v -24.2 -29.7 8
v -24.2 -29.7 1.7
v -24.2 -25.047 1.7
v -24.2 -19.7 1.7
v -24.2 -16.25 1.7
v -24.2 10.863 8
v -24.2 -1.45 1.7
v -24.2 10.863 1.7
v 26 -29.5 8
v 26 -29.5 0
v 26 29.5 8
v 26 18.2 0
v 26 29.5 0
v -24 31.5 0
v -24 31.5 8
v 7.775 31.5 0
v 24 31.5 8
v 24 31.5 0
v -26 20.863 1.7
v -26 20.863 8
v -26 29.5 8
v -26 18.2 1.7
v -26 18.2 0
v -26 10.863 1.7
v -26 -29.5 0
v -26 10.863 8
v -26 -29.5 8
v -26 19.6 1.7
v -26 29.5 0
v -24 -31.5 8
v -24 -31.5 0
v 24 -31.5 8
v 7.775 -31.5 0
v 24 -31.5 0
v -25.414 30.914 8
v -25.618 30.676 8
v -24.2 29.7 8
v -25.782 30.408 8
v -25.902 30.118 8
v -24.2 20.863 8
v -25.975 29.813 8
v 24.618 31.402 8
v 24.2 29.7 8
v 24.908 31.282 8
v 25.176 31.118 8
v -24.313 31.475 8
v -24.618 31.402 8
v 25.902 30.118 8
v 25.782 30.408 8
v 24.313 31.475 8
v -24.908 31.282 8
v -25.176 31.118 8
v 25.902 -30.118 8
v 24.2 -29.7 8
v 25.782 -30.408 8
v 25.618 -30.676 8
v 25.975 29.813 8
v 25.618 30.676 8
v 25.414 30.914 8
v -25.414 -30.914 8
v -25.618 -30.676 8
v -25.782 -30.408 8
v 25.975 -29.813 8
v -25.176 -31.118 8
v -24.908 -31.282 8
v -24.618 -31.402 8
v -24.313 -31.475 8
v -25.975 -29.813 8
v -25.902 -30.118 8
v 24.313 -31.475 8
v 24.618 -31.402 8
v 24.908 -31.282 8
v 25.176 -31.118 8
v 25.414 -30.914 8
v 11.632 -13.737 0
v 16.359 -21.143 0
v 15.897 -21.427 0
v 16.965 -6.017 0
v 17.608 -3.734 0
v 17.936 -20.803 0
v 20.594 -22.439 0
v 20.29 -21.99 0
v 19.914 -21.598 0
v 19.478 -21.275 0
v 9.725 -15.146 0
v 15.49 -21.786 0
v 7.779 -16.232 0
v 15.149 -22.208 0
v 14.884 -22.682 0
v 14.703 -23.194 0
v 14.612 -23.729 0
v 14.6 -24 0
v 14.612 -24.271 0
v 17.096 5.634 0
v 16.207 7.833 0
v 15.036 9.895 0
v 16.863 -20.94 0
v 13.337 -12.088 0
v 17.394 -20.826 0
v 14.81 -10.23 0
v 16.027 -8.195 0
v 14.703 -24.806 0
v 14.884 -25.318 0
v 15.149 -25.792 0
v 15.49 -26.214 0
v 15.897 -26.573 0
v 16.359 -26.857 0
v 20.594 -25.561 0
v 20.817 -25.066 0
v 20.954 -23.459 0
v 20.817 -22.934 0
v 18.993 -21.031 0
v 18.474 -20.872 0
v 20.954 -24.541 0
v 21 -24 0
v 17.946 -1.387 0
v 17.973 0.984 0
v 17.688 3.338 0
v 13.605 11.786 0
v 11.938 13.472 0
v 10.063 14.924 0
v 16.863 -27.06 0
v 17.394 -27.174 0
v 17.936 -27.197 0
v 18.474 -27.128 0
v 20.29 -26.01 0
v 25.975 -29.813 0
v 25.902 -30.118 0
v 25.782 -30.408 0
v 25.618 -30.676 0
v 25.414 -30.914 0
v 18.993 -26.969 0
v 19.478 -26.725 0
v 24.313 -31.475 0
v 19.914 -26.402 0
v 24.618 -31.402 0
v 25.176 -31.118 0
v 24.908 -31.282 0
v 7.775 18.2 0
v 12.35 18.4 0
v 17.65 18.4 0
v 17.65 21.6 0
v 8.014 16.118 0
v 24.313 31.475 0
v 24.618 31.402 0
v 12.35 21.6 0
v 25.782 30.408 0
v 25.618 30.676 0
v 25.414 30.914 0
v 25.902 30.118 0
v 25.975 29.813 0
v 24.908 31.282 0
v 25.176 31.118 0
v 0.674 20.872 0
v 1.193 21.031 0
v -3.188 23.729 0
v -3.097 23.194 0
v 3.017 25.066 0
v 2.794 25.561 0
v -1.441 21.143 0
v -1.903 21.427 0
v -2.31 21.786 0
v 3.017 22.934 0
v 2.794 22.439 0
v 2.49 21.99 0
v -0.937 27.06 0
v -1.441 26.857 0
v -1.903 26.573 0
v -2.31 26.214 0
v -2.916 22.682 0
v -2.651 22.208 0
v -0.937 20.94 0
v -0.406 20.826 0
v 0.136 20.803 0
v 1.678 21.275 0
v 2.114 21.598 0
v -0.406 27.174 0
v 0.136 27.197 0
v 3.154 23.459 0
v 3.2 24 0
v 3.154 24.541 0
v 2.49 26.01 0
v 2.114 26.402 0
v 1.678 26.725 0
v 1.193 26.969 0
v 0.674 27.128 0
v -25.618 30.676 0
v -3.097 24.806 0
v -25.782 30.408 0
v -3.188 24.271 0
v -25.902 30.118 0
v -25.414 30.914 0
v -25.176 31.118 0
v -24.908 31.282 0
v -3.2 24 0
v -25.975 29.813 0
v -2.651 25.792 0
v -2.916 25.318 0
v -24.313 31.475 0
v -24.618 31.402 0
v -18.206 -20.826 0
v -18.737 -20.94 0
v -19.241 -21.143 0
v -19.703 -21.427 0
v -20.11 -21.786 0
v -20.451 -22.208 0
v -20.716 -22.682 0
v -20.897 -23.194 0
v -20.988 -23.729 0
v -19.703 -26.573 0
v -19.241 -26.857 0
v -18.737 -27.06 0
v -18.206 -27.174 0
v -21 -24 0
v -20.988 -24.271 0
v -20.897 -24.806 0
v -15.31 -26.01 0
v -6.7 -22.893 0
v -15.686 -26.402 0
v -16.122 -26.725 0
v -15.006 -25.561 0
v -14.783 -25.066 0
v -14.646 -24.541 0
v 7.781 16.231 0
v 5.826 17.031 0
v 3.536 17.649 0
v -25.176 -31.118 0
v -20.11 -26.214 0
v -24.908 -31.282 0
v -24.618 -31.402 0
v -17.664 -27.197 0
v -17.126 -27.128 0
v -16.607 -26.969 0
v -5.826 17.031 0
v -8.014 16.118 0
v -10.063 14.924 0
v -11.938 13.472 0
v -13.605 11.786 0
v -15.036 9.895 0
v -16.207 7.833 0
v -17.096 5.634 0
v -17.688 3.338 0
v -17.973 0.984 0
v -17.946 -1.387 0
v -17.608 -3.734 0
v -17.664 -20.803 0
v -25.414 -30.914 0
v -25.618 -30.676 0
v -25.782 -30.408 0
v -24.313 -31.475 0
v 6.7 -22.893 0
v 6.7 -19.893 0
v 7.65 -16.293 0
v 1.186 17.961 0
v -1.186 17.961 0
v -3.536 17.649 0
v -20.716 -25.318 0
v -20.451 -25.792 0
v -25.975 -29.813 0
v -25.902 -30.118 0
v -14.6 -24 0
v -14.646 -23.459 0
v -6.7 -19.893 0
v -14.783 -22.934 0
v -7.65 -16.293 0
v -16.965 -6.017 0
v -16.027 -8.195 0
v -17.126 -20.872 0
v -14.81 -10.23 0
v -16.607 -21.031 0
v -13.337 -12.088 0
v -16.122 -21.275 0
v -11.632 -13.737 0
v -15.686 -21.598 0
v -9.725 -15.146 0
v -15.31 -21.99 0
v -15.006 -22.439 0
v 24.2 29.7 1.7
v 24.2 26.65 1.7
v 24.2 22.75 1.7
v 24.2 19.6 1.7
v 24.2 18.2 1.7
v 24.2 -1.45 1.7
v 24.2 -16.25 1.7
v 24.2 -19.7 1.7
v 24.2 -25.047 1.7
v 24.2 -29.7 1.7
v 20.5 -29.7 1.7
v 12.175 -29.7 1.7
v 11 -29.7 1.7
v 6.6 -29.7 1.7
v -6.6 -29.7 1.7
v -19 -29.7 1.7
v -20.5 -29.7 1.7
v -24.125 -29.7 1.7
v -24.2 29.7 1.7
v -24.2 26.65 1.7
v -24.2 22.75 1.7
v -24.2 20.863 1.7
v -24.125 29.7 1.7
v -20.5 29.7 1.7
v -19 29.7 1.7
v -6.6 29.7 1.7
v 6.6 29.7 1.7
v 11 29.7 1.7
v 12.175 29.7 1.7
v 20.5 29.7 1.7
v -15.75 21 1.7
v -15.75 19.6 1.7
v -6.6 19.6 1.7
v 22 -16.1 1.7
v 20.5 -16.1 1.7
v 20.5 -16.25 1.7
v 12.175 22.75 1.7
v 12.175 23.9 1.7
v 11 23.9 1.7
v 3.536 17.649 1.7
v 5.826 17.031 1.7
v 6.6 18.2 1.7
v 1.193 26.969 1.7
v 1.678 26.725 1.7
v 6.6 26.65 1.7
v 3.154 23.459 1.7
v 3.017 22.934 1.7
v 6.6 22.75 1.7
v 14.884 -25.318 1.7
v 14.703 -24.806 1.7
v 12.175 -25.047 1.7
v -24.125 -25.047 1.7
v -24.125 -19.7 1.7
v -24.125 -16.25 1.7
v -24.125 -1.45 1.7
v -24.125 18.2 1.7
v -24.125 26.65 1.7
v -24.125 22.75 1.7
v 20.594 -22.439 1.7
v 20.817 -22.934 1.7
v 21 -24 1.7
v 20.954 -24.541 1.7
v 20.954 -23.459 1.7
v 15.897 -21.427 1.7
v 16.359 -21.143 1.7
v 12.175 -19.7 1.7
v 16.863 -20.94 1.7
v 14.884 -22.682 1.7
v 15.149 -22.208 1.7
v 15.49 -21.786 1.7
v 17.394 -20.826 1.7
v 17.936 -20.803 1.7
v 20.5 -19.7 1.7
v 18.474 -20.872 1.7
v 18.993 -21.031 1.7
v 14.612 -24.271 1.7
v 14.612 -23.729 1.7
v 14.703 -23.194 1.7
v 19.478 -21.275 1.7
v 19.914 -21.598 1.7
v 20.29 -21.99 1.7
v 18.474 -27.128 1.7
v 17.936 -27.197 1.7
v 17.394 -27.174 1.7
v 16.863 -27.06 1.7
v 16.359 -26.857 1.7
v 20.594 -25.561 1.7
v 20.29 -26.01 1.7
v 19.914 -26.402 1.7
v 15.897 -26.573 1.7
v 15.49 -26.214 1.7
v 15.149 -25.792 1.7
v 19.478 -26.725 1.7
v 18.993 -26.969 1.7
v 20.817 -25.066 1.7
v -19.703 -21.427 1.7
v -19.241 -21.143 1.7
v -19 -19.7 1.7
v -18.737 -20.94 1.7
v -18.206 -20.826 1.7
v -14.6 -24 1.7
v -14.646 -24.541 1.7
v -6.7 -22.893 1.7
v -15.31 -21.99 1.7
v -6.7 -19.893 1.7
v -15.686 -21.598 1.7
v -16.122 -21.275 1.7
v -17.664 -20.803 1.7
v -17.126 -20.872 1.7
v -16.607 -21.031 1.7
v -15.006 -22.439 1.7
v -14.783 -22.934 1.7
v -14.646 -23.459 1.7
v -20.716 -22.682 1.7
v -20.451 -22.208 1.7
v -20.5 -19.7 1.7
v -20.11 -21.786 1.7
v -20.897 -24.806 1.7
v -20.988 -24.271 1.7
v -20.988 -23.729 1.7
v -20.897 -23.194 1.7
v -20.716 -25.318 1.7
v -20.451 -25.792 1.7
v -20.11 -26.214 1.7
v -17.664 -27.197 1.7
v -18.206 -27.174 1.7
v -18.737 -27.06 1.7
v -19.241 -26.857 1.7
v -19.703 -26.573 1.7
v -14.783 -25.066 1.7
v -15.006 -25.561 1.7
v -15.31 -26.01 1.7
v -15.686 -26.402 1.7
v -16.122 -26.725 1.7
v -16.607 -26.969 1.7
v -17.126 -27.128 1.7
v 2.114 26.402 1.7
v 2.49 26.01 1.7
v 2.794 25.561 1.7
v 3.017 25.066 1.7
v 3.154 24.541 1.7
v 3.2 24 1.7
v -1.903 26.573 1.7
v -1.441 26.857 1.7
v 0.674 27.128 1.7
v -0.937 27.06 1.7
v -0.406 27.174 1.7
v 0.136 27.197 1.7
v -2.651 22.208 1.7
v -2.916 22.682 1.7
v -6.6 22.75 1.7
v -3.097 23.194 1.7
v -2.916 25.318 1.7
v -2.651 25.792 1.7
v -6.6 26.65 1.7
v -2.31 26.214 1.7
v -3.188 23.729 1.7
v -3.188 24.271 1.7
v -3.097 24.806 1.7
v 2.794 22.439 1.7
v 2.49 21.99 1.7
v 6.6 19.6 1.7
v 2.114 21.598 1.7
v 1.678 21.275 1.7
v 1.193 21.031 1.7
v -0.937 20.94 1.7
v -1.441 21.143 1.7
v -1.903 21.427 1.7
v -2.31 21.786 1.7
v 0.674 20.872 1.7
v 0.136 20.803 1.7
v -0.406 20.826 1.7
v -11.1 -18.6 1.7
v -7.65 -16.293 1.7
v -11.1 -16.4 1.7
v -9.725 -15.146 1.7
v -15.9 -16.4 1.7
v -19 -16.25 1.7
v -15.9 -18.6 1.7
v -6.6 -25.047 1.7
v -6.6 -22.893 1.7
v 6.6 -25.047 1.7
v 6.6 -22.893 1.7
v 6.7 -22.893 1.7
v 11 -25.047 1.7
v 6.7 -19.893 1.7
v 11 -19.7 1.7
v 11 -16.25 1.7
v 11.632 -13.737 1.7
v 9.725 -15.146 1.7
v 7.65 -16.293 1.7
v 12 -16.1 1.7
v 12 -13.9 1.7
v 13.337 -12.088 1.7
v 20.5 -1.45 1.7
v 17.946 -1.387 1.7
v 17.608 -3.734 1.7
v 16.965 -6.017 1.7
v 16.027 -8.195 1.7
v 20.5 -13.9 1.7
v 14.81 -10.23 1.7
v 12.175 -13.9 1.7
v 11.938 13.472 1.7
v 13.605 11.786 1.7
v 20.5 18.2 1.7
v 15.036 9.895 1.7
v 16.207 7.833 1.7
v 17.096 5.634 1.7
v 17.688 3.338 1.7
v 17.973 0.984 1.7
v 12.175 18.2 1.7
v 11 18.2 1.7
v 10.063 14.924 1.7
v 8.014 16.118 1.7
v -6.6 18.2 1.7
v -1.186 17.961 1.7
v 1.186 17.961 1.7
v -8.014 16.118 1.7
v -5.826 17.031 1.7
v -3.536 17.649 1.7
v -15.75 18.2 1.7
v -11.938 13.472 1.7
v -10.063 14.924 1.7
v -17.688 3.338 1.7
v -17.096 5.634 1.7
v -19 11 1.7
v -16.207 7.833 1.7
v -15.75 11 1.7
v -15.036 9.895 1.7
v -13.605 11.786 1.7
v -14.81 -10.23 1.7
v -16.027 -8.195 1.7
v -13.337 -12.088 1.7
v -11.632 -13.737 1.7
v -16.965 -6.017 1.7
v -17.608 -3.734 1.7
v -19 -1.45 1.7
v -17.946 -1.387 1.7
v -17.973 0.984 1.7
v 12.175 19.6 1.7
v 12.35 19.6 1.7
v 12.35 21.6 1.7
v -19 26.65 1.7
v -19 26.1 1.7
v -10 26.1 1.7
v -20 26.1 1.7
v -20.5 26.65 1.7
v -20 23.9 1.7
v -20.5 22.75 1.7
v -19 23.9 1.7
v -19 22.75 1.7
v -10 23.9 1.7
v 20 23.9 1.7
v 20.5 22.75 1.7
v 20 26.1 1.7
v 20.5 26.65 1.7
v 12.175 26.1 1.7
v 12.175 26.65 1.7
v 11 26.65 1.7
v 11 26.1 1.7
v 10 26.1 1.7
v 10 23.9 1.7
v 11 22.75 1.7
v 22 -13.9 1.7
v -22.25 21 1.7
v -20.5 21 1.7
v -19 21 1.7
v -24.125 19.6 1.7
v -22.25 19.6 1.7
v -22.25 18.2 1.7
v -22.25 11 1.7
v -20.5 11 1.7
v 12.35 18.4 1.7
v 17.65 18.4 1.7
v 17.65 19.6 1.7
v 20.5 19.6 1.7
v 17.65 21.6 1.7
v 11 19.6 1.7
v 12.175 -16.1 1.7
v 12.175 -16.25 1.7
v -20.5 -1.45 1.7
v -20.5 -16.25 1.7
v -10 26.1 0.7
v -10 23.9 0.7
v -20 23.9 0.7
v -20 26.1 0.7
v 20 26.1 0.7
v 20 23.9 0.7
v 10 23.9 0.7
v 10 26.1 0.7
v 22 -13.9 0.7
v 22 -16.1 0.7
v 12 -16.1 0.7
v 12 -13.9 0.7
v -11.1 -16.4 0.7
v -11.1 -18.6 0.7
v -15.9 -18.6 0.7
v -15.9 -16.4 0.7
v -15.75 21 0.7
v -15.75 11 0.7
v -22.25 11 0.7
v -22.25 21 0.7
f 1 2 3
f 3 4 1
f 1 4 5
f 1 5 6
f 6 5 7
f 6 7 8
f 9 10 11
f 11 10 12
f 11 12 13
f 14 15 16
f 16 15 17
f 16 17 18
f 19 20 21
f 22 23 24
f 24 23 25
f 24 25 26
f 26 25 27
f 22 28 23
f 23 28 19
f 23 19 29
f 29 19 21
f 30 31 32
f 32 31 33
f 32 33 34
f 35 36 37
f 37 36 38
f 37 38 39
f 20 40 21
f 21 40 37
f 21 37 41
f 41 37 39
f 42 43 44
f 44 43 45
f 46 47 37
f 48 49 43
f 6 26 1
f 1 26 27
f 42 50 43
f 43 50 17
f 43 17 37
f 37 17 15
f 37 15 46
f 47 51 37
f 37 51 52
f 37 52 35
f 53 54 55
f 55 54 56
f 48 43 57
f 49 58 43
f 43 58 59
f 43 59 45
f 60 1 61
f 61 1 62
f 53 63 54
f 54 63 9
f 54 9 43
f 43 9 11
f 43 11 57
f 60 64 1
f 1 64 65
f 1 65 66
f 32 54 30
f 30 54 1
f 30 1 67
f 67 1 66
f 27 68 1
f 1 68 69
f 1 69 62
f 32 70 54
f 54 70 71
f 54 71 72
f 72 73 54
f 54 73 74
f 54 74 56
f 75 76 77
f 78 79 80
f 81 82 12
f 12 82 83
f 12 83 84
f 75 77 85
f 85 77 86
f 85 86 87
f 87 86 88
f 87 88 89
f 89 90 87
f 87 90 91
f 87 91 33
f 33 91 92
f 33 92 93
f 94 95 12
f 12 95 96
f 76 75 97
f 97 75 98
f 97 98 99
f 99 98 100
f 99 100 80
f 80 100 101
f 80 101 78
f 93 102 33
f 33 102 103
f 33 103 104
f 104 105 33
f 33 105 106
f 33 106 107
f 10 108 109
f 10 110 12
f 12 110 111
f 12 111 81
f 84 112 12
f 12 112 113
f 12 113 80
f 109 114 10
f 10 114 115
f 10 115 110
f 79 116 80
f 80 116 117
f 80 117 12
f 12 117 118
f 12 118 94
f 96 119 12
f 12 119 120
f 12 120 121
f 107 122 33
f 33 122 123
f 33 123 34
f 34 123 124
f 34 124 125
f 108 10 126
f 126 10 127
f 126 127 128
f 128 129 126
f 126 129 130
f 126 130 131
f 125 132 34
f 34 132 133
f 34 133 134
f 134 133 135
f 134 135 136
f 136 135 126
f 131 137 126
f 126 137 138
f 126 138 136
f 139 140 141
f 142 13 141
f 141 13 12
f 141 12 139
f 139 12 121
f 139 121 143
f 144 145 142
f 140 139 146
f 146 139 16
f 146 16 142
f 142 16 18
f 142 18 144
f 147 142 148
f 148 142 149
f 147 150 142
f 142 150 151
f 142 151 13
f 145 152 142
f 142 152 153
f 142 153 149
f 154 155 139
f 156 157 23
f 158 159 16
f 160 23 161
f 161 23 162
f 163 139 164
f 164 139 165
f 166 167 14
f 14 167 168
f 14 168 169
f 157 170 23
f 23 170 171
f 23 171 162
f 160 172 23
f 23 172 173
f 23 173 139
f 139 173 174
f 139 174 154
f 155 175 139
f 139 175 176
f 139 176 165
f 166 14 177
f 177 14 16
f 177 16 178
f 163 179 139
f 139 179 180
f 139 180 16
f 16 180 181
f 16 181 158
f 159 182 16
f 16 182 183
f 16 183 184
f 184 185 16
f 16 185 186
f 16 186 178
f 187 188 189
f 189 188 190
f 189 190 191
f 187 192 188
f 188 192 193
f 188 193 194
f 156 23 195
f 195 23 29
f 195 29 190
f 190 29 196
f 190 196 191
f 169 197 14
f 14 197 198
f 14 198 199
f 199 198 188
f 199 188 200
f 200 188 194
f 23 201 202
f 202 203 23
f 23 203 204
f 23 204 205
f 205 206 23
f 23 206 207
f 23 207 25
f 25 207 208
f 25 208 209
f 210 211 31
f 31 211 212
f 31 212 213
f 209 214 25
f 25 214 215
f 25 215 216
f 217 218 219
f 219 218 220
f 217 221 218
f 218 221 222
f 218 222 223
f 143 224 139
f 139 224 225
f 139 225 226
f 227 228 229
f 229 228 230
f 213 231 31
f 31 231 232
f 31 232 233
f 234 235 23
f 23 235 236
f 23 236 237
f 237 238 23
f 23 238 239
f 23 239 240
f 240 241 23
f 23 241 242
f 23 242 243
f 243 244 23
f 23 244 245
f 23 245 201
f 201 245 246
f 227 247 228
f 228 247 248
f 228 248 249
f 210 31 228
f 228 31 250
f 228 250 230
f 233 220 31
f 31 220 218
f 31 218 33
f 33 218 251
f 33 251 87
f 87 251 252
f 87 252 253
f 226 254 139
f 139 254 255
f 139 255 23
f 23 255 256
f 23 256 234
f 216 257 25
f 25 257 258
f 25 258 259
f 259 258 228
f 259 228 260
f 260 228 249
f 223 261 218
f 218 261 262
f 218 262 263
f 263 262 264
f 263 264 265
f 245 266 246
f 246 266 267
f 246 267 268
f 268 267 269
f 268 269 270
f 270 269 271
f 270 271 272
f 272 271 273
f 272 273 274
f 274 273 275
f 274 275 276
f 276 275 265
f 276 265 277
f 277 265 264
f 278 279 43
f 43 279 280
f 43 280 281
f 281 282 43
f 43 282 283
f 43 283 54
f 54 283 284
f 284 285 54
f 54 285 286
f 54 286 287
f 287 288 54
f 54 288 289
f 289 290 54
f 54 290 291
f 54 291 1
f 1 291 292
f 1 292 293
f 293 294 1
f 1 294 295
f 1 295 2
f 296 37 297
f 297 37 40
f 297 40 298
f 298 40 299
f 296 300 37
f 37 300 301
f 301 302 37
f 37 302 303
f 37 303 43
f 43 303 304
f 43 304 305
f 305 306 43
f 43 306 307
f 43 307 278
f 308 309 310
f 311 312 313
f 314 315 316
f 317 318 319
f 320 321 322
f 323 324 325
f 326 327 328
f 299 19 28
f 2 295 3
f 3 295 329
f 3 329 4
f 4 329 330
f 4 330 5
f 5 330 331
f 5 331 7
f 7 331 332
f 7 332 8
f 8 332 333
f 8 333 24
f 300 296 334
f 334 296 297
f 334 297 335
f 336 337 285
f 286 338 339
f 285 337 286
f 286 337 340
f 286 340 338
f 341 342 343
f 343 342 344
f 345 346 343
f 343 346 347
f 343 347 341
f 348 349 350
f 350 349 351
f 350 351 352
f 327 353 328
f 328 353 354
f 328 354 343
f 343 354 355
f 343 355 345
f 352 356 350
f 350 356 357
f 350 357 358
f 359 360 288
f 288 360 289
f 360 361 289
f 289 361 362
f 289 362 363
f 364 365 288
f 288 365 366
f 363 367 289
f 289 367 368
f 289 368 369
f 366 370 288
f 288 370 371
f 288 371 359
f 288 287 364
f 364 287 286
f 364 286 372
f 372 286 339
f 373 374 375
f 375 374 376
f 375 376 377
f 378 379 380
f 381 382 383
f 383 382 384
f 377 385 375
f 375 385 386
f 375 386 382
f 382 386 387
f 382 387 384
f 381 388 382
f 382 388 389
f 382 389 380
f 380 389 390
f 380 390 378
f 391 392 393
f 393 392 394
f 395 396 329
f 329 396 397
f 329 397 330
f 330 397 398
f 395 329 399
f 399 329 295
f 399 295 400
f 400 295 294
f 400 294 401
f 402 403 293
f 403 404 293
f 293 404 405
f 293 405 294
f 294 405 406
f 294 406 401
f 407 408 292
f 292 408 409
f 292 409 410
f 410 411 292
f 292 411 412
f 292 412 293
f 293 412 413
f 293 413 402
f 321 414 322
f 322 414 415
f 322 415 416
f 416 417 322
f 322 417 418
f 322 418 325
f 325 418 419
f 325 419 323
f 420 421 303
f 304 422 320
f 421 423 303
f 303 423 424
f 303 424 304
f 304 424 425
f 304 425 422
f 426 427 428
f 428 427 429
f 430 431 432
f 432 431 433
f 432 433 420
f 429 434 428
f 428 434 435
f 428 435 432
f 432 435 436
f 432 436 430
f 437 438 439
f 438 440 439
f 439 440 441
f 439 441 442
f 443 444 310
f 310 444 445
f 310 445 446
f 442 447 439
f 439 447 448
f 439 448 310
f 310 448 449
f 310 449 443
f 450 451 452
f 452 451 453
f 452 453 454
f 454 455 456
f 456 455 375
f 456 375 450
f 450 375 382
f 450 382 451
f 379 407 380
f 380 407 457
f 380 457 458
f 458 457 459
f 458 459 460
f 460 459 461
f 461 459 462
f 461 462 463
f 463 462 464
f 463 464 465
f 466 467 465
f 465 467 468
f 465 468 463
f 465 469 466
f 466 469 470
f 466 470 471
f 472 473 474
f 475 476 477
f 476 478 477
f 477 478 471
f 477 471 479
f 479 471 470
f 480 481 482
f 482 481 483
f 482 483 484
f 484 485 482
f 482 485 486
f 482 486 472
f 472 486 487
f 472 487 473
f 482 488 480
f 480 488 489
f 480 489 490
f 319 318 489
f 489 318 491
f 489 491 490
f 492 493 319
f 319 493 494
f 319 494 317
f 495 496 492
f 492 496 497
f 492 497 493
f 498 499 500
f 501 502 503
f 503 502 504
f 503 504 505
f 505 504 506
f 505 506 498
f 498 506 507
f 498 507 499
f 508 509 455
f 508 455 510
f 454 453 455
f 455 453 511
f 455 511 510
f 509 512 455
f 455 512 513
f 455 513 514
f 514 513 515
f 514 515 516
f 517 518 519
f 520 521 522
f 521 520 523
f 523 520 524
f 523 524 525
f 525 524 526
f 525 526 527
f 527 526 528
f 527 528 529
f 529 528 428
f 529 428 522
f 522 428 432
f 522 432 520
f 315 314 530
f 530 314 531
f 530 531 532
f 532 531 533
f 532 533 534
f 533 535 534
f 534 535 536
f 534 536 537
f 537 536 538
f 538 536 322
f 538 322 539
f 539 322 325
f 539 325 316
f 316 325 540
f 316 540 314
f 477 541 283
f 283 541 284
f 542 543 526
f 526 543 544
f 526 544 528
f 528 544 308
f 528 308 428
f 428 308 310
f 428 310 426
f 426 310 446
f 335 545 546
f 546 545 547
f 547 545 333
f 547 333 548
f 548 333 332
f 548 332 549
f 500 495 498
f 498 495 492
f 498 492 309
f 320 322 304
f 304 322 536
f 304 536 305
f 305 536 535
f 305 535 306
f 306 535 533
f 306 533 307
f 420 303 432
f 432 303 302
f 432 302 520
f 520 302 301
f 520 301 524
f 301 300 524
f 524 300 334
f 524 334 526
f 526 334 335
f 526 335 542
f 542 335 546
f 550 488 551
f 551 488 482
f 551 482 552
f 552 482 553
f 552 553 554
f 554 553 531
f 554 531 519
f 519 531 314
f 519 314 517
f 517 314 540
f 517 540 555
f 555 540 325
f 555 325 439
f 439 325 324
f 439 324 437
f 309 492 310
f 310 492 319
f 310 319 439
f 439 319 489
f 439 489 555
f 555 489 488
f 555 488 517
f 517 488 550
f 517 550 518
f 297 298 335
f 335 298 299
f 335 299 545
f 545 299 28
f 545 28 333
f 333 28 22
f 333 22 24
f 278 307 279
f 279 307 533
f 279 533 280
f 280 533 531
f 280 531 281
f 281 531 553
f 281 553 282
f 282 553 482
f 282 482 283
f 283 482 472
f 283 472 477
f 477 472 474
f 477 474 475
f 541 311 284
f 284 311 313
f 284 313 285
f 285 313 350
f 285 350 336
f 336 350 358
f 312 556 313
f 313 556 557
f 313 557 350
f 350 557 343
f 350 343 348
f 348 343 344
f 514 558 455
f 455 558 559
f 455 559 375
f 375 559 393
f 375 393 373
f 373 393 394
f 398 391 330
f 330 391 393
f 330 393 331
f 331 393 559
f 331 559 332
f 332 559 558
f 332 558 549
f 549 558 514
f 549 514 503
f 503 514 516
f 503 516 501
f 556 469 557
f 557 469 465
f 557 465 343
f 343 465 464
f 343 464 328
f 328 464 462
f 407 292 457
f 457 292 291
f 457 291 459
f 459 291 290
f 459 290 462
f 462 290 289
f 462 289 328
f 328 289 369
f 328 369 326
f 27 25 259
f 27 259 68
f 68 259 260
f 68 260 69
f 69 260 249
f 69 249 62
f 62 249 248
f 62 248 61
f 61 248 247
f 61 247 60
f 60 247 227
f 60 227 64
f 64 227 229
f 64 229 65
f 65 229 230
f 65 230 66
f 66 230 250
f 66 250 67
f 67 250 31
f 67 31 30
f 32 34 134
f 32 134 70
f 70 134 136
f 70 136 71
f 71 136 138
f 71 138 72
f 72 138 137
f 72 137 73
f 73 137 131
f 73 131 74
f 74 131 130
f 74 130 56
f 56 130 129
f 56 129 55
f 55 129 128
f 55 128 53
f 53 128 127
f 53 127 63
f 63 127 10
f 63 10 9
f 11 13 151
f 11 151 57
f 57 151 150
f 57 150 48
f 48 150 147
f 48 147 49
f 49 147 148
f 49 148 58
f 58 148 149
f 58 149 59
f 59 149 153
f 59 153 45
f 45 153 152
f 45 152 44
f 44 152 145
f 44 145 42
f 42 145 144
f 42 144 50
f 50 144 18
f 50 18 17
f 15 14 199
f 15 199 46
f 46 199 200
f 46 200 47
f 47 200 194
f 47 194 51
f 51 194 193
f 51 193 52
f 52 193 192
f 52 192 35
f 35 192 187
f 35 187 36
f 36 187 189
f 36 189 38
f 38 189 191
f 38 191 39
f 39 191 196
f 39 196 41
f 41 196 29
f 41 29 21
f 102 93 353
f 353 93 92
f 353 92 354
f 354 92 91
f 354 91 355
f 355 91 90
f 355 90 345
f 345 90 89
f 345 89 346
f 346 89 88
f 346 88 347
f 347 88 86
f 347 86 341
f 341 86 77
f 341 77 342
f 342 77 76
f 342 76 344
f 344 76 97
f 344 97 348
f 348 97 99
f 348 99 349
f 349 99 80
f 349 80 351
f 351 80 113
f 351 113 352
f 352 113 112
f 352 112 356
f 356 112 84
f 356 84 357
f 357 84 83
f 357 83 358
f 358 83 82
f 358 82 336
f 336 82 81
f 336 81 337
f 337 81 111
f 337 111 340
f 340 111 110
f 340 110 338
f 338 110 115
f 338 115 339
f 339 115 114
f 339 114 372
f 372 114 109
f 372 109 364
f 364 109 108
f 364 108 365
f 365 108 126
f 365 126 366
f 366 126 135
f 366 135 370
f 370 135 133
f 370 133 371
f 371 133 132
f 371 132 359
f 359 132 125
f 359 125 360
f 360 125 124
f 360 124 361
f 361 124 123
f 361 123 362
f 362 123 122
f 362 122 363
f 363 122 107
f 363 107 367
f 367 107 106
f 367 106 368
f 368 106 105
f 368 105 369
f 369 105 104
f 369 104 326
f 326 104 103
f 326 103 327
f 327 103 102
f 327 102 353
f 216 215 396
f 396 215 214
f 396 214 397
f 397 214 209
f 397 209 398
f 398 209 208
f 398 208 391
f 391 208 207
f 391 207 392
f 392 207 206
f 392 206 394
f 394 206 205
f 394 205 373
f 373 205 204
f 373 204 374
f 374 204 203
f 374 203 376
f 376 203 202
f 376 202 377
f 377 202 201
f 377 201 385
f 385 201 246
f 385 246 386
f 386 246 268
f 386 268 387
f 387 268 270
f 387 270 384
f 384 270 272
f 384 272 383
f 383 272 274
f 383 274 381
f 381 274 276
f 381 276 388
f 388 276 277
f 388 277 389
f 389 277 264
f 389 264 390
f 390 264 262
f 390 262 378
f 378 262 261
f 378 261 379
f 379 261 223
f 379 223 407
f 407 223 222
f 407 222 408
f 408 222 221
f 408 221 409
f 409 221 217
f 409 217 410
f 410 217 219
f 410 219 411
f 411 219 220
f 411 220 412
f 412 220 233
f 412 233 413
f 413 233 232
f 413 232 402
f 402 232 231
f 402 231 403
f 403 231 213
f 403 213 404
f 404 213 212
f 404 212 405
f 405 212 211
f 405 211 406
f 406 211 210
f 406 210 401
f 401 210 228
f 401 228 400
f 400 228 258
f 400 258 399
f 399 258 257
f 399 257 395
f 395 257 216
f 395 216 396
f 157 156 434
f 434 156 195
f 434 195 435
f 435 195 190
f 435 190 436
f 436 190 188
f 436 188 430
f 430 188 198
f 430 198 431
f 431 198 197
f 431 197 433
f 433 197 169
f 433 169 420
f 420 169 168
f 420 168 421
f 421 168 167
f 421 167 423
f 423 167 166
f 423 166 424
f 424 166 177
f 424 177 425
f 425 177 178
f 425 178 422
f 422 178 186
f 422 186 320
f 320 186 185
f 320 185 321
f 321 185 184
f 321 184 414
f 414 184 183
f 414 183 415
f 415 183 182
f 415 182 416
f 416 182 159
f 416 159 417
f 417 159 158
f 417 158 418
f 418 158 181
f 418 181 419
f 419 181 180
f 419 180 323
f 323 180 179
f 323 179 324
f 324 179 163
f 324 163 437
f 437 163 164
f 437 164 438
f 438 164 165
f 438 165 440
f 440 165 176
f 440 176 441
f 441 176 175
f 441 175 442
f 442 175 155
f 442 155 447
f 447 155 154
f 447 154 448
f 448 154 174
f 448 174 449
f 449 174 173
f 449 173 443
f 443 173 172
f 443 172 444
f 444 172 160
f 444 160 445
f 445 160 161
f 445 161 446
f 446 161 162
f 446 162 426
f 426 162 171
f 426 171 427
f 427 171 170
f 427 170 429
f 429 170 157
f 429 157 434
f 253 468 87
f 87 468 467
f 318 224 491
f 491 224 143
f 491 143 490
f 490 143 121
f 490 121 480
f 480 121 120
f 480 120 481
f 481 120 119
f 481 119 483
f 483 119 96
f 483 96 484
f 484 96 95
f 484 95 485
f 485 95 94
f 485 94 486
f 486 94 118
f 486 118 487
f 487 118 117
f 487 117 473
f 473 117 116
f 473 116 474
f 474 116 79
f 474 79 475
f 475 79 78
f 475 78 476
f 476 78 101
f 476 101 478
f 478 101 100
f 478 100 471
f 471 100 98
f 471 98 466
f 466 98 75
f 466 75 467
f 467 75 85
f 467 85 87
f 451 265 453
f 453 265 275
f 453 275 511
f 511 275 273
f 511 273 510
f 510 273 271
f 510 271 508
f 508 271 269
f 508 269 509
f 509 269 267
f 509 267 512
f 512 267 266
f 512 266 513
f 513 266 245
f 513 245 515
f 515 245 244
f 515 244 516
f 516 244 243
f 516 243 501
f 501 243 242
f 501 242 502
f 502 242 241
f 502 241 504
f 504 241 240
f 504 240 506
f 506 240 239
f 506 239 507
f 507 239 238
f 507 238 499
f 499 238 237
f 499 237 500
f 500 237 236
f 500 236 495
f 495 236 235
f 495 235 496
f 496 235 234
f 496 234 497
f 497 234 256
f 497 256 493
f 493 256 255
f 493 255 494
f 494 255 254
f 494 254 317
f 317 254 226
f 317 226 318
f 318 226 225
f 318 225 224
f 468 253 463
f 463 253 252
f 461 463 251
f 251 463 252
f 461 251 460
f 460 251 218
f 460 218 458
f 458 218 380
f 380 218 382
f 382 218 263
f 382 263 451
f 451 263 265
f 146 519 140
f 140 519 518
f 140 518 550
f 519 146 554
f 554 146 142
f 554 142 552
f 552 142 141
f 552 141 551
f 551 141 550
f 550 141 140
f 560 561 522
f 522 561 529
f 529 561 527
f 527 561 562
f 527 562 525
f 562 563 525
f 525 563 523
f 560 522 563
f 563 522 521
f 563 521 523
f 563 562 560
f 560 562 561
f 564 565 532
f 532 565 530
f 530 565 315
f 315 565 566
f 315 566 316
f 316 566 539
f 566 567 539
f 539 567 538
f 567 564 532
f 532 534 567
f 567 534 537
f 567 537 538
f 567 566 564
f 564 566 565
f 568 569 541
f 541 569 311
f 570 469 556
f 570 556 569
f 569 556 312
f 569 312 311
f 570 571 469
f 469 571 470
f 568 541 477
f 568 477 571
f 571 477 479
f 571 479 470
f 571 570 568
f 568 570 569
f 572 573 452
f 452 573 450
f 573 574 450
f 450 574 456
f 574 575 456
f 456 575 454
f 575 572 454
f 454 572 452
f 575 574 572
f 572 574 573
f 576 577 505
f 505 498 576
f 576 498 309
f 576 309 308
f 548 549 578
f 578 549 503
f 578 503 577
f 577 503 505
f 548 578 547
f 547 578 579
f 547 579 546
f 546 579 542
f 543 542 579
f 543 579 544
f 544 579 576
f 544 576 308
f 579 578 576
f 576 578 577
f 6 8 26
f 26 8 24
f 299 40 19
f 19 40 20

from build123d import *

# Parameters (mm, degrees)
SKETCH_1_W          = 52
SKETCH_1_H          = 63
EXTRUDE_1_DEPTH     = 8
SKETCH_2_W          = 48.4
SKETCH_2_H          = 59.4
CUT_EXTRUDE_1_DEPTH = 6.3
FILLET_1_R          = 2
CUT_EXTRUDE_2_REACH = 43.327
SKETCH_3_R          = 3.2
CUT_EXTRUDE_3_REACH = 43.327
SKETCH_4_R          = 18
SKETCH_4_W          = 13.4
SKETCH_4_H          = 3
CUT_EXTRUDE_4_REACH = 43.327
SKETCH_5_W          = 5.3
SKETCH_5_H          = 3.2
SKETCH_6_W          = 10
SKETCH_6_H          = 2.2
SKETCH_6_W_2        = 4.8
SKETCH_6_W_3        = 6.5
SKETCH_6_H_2        = 10
CUT_EXTRUDE_5_DEPTH = 1
CUT_EXTRUDE_6_REACH = 61.802
SKETCH_7_W          = 6.3
SKETCH_7_H          = 10


with BuildPart() as part:
    # 草图1 → 凸台-拉伸1 (new body)
    with BuildSketch(Plane.XY):
        Rectangle(SKETCH_1_W, SKETCH_1_H)
    extrude(amount=EXTRUDE_1_DEPTH)

    # 草图2 → 切除-拉伸1 (cut)
    with BuildSketch(Plane.XY.offset(8)):
        Rectangle(SKETCH_2_W, SKETCH_2_H)
    extrude(amount=-CUT_EXTRUDE_1_DEPTH, mode=Mode.SUBTRACT)

    # 圆角1
    fillet_1_edges = [part.edges().sort_by_distance(p)[0] for p in [
        (26, -31.5, 4),
        (-26, -31.5, 4),
        (-26, 31.5, 4),
        (26, 31.5, 4),
    ]]
    fillet(fillet_1_edges, radius=FILLET_1_R)

    # 草图3 → 切除-拉伸2 (cut, up to next)
    with BuildSketch(Plane.XY.offset(1.7), mode=Mode.PRIVATE) as cut_extrude_2_sk1:
        with Locations((0, 24)):
            Circle(SKETCH_3_R)
    cut_extrude_2_tool1 = extrude(cut_extrude_2_sk1.sketch, amount=-CUT_EXTRUDE_2_REACH, mode=Mode.PRIVATE) & part.part
    # 草图3 → 切除-拉伸2 (cut, up to next)
    with BuildSketch(Plane.XY.offset(1.7), mode=Mode.PRIVATE) as cut_extrude_2_sk2:
        with Locations((-17.8, -24)):
            Circle(SKETCH_3_R)
    cut_extrude_2_tool2 = extrude(cut_extrude_2_sk2.sketch, amount=-CUT_EXTRUDE_2_REACH, mode=Mode.PRIVATE) & part.part
    # 草图3 → 切除-拉伸2 (cut, up to next)
    with BuildSketch(Plane.XY.offset(1.7), mode=Mode.PRIVATE) as cut_extrude_2_sk3:
        with Locations((17.8, -24)):
            Circle(SKETCH_3_R)
    cut_extrude_2_tool3 = extrude(cut_extrude_2_sk3.sketch, amount=-CUT_EXTRUDE_2_REACH, mode=Mode.PRIVATE) & part.part
    add(cut_extrude_2_tool1.solids().sort_by_distance((0, 24, 1.7))[0], mode=Mode.SUBTRACT)
    add(cut_extrude_2_tool2.solids().sort_by_distance((-17.8, -24, 1.7))[0], mode=Mode.SUBTRACT)
    add(cut_extrude_2_tool3.solids().sort_by_distance((17.8, -24, 1.7))[0], mode=Mode.SUBTRACT)

    # 草图4 → 切除-拉伸3 (cut, up to next)
    with BuildSketch(Plane.XY.offset(1.7), mode=Mode.PRIVATE) as cut_extrude_3_sk1:
        Circle(SKETCH_4_R)
    cut_extrude_3_tool1 = extrude(cut_extrude_3_sk1.sketch, amount=-CUT_EXTRUDE_3_REACH, mode=Mode.PRIVATE) & part.part
    # 草图4 → 切除-拉伸3 (cut, up to next)
    with BuildSketch(Plane.XY.offset(1.7), mode=Mode.PRIVATE) as cut_extrude_3_sk2:
        with BuildLine():
            ThreePointArc((7.65, -16.293480291), (0, -18), (-7.65, -16.293480291))
            Line((-7.65, -16.293480291), (-6.7, -19.893480291))
            Line((-6.7, -19.893480291), (6.7, -19.893480291))
            Line((6.7, -19.893480291), (7.65, -16.293480291))
        make_face()
    cut_extrude_3_tool2 = extrude(cut_extrude_3_sk2.sketch, amount=-CUT_EXTRUDE_3_REACH, mode=Mode.PRIVATE) & part.part
    # 草图4 → 切除-拉伸3 (cut, up to next)
    with BuildSketch(Plane.XY.offset(1.7), mode=Mode.PRIVATE) as cut_extrude_3_sk3:
        with Locations((0, -21.393480291)):
            Rectangle(SKETCH_4_W, SKETCH_4_H)
    cut_extrude_3_tool3 = extrude(cut_extrude_3_sk3.sketch, amount=-CUT_EXTRUDE_3_REACH, mode=Mode.PRIVATE) & part.part
    add(cut_extrude_3_tool1.solids().sort_by_distance((0, 0, 1.7))[0], mode=Mode.SUBTRACT)
    add(cut_extrude_3_tool2.solids().sort_by_distance((0, -18.608129, 1.7))[0], mode=Mode.SUBTRACT)
    add(cut_extrude_3_tool3.solids().sort_by_distance((0, -21.39348, 1.7))[0], mode=Mode.SUBTRACT)

    # 草图5 → 切除-拉伸4 (cut, up to next)
    with BuildSketch(Plane.XY.offset(1.7), mode=Mode.PRIVATE) as cut_extrude_4_sk1:
        with Locations((15, 20)):
            Rectangle(SKETCH_5_W, SKETCH_5_H)
    cut_extrude_4_tool1 = extrude(cut_extrude_4_sk1.sketch, amount=-CUT_EXTRUDE_4_REACH, mode=Mode.PRIVATE) & part.part
    add(cut_extrude_4_tool1.solids().sort_by_distance((15, 20, 1.7))[0], mode=Mode.SUBTRACT)

    # 草图6 → 切除-拉伸5 (cut)
    with BuildSketch(Plane.XY.offset(1.7)):
        with Locations((-15, 25)):
            Rectangle(SKETCH_6_W, SKETCH_6_H)
        with Locations((15, 25)):
            Rectangle(SKETCH_6_W, SKETCH_6_H)
        with Locations((17, -15)):
            Rectangle(SKETCH_6_W, SKETCH_6_H)
        with Locations((-13.5, -17.5)):
            Rectangle(SKETCH_6_W_2, SKETCH_6_H)
        with Locations((-19, 16)):
            Rectangle(SKETCH_6_W_3, SKETCH_6_H_2)
    extrude(amount=-CUT_EXTRUDE_5_DEPTH, mode=Mode.SUBTRACT)

    # 草图7 → 切除-拉伸6 (cut, up to next)
    with BuildSketch(Plane(origin=(-24.2, 0, 0), x_dir=(0, 0, -1), z_dir=(1, 0, 0)), mode=Mode.PRIVATE) as cut_extrude_6_sk1:
        with Locations((-4.85, 15.863241886)):
            Rectangle(SKETCH_7_W, SKETCH_7_H)
    cut_extrude_6_tool1 = extrude(cut_extrude_6_sk1.sketch, amount=-CUT_EXTRUDE_6_REACH, mode=Mode.PRIVATE) & part.part
    add(cut_extrude_6_tool1.solids().sort_by_distance((-24.2, 15.863242, 4.85))[0], mode=Mode.SUBTRACT)


solid = part.part
